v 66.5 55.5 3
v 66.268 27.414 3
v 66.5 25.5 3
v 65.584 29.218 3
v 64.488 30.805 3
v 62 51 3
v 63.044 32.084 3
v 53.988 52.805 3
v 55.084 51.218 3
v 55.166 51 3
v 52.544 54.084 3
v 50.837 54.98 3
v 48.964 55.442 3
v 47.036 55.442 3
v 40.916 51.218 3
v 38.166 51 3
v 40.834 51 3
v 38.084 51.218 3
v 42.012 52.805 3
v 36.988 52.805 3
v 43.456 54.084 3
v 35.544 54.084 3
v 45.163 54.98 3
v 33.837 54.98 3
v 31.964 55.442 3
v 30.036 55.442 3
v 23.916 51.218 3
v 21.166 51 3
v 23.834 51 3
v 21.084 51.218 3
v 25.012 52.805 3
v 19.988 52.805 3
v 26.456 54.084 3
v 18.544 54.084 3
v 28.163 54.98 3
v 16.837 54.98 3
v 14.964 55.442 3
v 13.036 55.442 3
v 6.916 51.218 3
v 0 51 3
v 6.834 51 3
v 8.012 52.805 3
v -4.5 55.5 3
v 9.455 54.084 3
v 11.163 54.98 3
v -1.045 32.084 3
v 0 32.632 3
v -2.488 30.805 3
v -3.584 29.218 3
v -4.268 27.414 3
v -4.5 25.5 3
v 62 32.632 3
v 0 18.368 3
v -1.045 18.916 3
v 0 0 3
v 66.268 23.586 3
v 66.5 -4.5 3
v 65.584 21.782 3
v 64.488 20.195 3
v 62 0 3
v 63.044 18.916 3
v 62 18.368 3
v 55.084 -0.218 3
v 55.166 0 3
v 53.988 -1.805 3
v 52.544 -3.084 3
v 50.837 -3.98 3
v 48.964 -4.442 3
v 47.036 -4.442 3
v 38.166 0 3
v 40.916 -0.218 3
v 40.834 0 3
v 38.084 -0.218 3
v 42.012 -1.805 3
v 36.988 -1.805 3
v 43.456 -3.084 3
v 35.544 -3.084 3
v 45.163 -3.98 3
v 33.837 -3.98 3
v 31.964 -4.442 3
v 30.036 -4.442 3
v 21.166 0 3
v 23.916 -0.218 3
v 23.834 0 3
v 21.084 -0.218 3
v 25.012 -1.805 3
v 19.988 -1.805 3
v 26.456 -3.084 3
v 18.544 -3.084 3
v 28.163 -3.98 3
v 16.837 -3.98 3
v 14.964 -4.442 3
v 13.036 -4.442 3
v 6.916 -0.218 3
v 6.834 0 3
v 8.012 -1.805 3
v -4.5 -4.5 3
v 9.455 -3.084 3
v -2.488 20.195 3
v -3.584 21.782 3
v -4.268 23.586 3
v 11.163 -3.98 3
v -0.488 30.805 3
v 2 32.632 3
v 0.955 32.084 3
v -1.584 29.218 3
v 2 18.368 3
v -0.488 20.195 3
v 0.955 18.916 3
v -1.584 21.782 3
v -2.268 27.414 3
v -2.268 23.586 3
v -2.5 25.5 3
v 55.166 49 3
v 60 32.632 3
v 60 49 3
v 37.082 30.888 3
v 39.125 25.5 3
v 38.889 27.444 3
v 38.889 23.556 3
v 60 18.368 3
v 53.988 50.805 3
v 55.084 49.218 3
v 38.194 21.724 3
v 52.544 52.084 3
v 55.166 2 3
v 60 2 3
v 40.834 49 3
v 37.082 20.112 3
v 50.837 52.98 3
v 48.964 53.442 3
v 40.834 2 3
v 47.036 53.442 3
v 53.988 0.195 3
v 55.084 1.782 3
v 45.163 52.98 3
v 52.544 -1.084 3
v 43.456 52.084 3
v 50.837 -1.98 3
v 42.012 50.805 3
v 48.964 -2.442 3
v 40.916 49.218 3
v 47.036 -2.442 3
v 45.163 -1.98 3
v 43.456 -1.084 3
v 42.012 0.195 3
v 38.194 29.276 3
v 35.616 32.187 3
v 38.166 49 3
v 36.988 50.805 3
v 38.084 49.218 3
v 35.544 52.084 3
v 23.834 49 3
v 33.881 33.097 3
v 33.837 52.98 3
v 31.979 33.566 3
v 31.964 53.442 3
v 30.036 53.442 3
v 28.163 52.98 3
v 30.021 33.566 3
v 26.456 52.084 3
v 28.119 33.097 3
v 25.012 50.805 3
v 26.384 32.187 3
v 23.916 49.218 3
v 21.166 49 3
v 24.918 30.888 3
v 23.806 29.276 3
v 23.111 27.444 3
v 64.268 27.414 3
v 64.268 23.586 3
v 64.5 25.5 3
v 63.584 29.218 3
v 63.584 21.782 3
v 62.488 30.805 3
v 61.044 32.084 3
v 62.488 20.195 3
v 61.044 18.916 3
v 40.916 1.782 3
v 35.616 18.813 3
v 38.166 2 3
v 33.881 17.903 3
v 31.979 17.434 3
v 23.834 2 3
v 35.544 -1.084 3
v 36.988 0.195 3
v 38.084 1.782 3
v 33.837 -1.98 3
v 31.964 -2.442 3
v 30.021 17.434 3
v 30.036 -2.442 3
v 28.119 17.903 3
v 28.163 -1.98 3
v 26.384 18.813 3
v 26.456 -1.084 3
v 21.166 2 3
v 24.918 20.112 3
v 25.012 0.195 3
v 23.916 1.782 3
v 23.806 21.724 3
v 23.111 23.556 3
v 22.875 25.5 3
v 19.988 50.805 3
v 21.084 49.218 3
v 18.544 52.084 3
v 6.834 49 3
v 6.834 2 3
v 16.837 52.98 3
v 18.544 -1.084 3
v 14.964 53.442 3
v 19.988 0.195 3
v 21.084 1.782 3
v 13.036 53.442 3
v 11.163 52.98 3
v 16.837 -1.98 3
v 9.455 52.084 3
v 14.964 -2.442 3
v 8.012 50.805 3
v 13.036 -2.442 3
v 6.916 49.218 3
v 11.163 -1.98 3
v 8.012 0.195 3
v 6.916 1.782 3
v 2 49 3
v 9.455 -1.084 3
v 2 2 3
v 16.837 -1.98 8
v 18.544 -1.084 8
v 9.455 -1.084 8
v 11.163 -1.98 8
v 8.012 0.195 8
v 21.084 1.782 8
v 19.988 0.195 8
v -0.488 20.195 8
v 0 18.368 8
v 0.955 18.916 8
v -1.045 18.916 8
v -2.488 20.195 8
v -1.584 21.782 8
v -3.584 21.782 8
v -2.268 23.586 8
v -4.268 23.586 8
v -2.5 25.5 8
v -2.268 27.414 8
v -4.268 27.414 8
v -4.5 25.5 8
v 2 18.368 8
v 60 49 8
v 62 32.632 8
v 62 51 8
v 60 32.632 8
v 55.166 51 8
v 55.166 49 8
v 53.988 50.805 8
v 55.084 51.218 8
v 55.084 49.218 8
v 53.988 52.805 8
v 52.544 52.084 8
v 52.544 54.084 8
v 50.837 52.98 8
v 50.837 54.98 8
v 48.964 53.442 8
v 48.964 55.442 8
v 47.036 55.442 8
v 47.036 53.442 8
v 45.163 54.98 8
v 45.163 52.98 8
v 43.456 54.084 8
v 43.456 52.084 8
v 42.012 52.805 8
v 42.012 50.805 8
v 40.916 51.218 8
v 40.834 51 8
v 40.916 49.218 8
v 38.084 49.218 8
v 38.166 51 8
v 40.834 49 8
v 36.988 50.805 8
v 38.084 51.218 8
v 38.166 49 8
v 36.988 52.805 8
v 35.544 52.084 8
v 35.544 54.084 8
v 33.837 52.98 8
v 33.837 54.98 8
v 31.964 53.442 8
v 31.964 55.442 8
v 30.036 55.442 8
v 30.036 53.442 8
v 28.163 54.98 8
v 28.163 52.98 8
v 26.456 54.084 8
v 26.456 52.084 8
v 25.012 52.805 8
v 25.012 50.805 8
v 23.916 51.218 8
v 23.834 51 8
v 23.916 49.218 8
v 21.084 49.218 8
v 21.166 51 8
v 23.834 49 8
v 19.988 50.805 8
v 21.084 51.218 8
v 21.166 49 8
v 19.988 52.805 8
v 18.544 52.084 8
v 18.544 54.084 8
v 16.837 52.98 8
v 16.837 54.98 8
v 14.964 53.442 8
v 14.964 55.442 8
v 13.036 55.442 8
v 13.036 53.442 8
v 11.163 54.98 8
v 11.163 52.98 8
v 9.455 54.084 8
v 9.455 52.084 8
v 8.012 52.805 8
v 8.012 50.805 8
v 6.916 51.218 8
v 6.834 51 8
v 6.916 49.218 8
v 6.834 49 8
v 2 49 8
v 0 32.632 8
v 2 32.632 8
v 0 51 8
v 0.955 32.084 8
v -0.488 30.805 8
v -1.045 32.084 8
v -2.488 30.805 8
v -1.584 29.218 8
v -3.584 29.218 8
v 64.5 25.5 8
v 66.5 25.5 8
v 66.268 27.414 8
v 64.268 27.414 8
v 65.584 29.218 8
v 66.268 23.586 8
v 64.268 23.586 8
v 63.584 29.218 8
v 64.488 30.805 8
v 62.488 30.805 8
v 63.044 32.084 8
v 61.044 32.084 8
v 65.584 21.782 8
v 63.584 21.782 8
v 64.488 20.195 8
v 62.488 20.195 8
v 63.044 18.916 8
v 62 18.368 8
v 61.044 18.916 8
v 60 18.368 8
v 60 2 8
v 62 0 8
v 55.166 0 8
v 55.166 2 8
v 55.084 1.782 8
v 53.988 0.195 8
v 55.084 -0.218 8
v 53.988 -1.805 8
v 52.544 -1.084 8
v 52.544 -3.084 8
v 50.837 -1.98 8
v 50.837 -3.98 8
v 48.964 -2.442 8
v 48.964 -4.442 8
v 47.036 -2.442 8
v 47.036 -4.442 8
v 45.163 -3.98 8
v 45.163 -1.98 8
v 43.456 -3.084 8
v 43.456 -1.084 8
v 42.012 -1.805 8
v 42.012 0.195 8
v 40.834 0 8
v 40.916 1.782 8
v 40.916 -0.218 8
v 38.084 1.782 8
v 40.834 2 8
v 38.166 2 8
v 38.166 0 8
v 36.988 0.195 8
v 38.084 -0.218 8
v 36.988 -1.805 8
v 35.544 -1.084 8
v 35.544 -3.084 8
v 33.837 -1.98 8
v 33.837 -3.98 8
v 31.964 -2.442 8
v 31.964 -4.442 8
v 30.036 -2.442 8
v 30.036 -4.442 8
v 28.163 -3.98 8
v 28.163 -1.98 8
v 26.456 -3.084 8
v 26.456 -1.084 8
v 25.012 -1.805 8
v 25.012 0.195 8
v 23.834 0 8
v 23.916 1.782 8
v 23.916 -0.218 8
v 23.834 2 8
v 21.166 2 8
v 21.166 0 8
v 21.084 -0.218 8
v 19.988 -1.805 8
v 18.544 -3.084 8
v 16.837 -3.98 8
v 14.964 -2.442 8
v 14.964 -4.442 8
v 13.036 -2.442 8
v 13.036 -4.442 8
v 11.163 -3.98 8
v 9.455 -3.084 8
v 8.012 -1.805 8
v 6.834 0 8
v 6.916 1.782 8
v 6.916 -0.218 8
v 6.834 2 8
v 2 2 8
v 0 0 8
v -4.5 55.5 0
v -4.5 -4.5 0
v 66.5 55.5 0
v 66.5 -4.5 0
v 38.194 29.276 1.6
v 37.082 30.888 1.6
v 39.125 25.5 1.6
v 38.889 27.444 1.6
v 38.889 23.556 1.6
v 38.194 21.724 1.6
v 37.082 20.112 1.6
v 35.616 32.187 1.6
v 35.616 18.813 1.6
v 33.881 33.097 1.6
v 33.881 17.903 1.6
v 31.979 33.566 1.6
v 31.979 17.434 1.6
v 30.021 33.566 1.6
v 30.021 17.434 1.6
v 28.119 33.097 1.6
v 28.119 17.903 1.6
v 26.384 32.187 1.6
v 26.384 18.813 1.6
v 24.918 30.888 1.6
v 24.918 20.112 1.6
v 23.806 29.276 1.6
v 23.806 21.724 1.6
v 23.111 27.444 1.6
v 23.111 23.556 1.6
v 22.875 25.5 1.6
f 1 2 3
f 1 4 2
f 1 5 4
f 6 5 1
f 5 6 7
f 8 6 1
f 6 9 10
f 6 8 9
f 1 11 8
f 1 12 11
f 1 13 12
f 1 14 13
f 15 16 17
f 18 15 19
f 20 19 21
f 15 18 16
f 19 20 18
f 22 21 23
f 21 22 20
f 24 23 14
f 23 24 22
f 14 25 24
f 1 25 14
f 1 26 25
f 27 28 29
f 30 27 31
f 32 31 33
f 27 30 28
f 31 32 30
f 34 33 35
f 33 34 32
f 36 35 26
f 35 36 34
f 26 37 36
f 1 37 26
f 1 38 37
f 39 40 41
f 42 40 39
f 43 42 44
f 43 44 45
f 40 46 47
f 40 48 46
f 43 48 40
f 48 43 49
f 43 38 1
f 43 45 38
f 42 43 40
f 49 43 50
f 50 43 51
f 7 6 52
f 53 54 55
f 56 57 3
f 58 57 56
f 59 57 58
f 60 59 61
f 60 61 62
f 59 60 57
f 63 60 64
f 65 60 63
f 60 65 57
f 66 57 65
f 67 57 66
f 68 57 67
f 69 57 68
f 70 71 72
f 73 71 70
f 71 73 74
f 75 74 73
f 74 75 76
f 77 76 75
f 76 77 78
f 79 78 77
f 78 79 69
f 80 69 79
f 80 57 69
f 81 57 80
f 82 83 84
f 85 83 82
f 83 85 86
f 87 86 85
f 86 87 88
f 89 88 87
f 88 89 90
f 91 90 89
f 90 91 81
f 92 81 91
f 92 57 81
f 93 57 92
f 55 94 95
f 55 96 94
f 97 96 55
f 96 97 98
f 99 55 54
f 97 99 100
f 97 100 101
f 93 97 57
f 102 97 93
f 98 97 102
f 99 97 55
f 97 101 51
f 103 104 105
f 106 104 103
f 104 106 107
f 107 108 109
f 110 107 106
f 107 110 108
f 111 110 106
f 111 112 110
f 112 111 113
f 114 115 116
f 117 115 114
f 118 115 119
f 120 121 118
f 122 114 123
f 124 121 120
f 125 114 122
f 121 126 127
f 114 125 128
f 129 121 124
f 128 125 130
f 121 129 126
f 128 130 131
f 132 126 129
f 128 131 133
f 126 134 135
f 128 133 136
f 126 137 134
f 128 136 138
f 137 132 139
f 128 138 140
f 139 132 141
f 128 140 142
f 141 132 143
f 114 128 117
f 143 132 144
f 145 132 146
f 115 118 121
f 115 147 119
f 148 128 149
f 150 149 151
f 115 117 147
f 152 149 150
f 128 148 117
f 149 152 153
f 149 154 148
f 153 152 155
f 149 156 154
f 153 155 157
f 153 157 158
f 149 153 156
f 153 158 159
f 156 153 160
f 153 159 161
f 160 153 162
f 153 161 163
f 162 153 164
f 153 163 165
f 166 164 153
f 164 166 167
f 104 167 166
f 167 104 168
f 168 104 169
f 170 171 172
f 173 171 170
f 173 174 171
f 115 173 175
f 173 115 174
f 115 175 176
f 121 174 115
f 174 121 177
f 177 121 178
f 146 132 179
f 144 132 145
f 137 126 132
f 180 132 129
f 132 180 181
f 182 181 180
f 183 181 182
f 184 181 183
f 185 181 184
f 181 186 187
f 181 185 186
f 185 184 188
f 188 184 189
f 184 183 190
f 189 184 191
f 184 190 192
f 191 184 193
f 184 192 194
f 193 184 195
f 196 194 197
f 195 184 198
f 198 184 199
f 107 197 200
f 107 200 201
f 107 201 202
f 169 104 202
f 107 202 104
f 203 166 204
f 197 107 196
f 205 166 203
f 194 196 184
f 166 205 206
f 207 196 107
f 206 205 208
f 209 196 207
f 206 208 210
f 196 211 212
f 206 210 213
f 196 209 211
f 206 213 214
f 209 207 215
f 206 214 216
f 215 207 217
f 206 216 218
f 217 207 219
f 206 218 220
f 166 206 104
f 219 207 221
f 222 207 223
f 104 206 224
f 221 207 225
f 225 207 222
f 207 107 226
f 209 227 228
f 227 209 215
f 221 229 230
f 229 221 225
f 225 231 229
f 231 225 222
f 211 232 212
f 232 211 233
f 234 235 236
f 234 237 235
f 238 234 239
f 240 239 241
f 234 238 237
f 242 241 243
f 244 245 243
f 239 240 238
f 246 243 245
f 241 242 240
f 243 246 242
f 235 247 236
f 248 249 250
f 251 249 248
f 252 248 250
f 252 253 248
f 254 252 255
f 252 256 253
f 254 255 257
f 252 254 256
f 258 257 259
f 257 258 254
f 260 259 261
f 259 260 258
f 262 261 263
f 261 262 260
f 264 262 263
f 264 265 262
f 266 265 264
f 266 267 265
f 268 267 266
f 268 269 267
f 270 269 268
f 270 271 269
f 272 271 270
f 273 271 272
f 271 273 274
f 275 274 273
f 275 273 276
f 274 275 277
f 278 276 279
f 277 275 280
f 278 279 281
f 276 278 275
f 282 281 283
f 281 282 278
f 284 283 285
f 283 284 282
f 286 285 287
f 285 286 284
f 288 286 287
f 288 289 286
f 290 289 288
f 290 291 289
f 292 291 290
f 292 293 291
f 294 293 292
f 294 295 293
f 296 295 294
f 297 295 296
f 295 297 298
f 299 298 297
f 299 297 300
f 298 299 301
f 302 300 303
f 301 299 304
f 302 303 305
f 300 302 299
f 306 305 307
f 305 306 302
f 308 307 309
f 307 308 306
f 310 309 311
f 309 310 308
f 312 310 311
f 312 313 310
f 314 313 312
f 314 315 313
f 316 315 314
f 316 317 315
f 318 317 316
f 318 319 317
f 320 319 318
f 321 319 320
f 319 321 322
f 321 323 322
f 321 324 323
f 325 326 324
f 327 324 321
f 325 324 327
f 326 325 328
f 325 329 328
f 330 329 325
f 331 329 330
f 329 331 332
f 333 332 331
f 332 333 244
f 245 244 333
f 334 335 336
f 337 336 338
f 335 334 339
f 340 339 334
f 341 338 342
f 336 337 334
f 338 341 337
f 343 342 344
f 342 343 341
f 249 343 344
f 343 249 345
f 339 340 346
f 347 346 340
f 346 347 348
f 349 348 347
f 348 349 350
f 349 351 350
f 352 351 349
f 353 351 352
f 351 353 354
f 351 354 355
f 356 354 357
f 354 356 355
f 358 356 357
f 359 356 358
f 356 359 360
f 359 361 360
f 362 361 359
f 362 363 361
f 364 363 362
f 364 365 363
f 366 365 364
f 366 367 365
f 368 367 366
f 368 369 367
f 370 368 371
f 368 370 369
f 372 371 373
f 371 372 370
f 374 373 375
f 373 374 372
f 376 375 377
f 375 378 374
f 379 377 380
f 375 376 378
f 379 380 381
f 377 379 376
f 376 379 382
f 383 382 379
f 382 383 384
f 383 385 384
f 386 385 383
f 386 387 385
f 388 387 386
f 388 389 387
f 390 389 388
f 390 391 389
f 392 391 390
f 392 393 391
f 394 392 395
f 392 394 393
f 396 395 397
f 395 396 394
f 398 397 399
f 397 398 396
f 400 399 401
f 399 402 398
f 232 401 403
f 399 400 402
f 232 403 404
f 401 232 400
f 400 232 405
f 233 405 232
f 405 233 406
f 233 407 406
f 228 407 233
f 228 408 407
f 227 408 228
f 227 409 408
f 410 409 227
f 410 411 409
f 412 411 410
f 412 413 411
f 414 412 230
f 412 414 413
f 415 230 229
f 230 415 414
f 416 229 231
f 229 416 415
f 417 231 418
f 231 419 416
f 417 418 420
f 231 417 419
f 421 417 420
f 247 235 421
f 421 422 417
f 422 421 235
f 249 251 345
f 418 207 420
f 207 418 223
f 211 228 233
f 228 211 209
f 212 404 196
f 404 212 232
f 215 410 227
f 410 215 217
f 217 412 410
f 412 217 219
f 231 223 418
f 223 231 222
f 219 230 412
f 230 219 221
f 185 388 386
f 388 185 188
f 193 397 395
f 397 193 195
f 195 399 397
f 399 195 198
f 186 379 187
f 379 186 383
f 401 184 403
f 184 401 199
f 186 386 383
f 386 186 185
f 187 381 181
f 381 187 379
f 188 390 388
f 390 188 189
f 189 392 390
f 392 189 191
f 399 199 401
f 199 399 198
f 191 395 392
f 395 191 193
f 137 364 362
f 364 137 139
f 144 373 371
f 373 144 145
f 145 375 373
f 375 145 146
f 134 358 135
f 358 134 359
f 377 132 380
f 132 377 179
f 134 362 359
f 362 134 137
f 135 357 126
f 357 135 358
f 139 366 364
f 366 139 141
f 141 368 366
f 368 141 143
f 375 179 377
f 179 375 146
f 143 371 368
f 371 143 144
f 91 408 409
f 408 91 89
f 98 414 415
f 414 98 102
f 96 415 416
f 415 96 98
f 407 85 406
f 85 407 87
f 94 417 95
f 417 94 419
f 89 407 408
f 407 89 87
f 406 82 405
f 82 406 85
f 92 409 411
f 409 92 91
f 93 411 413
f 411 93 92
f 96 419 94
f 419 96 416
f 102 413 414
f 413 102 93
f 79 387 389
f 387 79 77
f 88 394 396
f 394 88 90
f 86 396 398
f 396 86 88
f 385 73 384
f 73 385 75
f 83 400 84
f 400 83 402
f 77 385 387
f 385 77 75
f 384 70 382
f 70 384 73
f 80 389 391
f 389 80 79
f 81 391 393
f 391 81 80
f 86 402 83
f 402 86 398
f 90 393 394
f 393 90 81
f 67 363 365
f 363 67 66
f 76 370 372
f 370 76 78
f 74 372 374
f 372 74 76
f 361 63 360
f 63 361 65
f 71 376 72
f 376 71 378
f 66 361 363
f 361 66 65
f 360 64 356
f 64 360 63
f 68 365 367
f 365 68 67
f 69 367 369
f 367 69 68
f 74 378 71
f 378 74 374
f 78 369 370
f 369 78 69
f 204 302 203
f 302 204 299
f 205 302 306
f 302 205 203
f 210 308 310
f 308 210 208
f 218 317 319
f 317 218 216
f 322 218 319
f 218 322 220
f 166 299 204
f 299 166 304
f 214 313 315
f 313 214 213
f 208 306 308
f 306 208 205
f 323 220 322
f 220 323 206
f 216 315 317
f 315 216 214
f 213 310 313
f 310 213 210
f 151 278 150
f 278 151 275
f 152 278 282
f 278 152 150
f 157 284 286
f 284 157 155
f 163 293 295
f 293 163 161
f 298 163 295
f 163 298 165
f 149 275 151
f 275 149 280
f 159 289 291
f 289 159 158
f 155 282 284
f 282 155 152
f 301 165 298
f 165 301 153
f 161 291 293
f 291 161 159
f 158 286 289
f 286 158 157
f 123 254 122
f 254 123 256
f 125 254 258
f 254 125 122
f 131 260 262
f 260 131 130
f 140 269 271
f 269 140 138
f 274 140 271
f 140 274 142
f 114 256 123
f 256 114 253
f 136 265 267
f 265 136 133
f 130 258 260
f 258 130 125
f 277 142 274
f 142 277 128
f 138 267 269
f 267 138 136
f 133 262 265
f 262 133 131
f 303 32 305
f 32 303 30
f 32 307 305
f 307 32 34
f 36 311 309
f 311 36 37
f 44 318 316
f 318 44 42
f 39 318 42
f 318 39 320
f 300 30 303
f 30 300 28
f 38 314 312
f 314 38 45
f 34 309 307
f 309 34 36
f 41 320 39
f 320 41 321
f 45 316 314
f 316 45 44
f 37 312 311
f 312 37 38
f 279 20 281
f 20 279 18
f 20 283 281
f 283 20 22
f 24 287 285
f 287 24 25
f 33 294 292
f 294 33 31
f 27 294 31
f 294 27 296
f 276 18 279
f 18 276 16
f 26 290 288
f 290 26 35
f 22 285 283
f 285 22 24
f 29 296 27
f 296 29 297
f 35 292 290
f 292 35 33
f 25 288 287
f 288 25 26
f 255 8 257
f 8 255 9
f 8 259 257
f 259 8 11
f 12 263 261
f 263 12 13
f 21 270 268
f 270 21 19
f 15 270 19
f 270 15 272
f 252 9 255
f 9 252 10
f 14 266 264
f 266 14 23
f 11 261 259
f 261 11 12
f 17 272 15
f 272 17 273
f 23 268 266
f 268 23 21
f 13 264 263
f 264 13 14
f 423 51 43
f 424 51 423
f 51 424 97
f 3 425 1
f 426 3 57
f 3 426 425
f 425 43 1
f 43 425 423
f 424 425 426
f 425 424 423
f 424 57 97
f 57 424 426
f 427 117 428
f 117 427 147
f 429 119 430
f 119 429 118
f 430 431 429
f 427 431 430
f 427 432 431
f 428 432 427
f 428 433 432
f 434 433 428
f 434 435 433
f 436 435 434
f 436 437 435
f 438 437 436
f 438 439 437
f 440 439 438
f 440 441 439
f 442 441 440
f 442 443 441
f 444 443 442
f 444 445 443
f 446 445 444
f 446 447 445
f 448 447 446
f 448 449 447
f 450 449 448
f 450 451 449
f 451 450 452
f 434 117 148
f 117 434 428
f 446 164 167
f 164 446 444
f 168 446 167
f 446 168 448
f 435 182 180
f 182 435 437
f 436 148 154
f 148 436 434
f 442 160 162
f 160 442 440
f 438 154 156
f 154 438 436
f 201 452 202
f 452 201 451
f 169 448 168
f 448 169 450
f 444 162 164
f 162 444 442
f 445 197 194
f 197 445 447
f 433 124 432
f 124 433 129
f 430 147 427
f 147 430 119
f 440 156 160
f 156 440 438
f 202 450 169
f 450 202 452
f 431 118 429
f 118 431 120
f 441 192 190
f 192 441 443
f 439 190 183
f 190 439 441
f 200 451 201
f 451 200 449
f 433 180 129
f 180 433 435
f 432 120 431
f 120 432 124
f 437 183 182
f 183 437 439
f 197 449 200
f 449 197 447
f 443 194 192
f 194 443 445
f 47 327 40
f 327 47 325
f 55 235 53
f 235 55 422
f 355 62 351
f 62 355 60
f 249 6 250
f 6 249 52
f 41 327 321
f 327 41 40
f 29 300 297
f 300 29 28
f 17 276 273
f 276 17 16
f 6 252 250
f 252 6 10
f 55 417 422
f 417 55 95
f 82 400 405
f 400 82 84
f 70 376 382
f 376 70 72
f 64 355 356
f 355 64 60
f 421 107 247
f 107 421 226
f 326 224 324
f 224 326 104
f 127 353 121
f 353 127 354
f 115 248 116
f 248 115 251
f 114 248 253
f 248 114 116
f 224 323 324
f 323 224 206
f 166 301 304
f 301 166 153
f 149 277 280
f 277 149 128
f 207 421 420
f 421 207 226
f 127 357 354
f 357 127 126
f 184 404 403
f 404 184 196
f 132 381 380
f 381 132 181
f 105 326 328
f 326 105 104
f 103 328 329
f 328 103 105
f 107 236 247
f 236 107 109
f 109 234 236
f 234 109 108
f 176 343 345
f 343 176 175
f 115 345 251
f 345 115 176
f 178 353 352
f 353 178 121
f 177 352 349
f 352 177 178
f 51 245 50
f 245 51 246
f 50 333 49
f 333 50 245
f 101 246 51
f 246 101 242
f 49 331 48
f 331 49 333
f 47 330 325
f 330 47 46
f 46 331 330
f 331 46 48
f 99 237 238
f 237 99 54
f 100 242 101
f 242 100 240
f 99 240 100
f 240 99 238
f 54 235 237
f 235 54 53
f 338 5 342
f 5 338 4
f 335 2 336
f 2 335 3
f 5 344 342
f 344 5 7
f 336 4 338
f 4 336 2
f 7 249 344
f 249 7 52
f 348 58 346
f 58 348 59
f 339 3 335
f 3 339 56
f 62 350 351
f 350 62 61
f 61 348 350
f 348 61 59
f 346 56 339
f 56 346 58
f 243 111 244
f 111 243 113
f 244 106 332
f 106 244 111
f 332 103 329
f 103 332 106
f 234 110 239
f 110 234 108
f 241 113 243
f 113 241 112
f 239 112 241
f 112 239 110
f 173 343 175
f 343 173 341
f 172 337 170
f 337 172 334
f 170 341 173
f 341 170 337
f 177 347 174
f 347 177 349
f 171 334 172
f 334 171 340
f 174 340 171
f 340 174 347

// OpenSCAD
length = 57;
width = 46;
height = 3;
rimHeight = 5;
rimThickness = 2;
notchLength = 25;
//Based on washer size:
washerDiameter = 16.25;
washerHeight = 1.4;
rimPadding = 1;
totalHeight = height + rimHeight;

totalLength = length + rimThickness * 2 + rimPadding;
totalWidth = width + rimThickness * 2 + rimPadding;
extraLidForCircles = 4.5;

smallCircleOffset = 2.5;
smallCircleDiameter = 16;
union()
{
    difference() {
        translate([-extraLidForCircles, -extraLidForCircles, 0])
            cube([totalLength + 2 * extraLidForCircles, totalWidth + 2 * extraLidForCircles, height]);
        translate([totalLength/2, totalWidth/2, height - washerHeight])
            cylinder(washerHeight, d=washerDiameter);
    }
    
    difference() {
        translate([0, 0, height])
            cube([totalLength, totalWidth, rimHeight]);
        translate([rimThickness, rimThickness, height])
            cube([length + rimPadding, width + rimPadding, rimHeight]);
        LengthCircles();
        translate([0, totalWidth - 2 * (smallCircleDiameter/2 - smallCircleOffset), 0])
            LengthCircles();
        WidthCircles();
        translate([totalLength - 2 * (smallCircleDiameter/2 - smallCircleOffset), 0, 0])
            WidthCircles();
    }
    
    difference(){
        union()
        {
            translate([0, -rimThickness, 0])
                LengthCircles();
            translate([0, totalWidth - 2 * (smallCircleDiameter/2 - smallCircleOffset) + rimThickness, 0])
                LengthCircles();
            translate([-rimThickness, 0, 0])
                WidthCircles();
            translate([totalLength - 2 * (smallCircleDiameter/2 - smallCircleOffset) + rimThickness, 0, 0])
                WidthCircles();
        }
        translate([0, 0, height])
            cube([totalLength, totalWidth, rimHeight]);
        LengthCircles();
        translate([0, totalWidth - 2 * (smallCircleDiameter/2 - smallCircleOffset), 0])
            LengthCircles();
        WidthCircles();
        translate([totalLength - 2 * (smallCircleDiameter/2 - smallCircleOffset), 0, 0])
            WidthCircles();
    }
}


module LengthCircles()
{

spaceBetweenCircles = 3;
    translate([
        smallCircleDiameter/2 + spaceBetweenCircles + rimThickness + rimPadding,
        smallCircleDiameter/2 - smallCircleOffset,
        height])
            cylinder(rimHeight, d=smallCircleDiameter);

    translate([
        totalLength /2,
        smallCircleDiameter/2 - smallCircleOffset,
        height])
        cylinder(rimHeight, d=smallCircleDiameter);
    
    translate([
        totalLength - (smallCircleDiameter/2 + spaceBetweenCircles + rimThickness + rimPadding), 
        smallCircleDiameter/2 - smallCircleOffset,
        height])
        cylinder(rimHeight, d=smallCircleDiameter);
}


module WidthCircles()
{
    spaceBetweenCircles = 3;
    
    translate([smallCircleDiameter/2 - smallCircleOffset, totalWidth/2, height])
        cylinder(rimHeight, d=smallCircleDiameter);
}
